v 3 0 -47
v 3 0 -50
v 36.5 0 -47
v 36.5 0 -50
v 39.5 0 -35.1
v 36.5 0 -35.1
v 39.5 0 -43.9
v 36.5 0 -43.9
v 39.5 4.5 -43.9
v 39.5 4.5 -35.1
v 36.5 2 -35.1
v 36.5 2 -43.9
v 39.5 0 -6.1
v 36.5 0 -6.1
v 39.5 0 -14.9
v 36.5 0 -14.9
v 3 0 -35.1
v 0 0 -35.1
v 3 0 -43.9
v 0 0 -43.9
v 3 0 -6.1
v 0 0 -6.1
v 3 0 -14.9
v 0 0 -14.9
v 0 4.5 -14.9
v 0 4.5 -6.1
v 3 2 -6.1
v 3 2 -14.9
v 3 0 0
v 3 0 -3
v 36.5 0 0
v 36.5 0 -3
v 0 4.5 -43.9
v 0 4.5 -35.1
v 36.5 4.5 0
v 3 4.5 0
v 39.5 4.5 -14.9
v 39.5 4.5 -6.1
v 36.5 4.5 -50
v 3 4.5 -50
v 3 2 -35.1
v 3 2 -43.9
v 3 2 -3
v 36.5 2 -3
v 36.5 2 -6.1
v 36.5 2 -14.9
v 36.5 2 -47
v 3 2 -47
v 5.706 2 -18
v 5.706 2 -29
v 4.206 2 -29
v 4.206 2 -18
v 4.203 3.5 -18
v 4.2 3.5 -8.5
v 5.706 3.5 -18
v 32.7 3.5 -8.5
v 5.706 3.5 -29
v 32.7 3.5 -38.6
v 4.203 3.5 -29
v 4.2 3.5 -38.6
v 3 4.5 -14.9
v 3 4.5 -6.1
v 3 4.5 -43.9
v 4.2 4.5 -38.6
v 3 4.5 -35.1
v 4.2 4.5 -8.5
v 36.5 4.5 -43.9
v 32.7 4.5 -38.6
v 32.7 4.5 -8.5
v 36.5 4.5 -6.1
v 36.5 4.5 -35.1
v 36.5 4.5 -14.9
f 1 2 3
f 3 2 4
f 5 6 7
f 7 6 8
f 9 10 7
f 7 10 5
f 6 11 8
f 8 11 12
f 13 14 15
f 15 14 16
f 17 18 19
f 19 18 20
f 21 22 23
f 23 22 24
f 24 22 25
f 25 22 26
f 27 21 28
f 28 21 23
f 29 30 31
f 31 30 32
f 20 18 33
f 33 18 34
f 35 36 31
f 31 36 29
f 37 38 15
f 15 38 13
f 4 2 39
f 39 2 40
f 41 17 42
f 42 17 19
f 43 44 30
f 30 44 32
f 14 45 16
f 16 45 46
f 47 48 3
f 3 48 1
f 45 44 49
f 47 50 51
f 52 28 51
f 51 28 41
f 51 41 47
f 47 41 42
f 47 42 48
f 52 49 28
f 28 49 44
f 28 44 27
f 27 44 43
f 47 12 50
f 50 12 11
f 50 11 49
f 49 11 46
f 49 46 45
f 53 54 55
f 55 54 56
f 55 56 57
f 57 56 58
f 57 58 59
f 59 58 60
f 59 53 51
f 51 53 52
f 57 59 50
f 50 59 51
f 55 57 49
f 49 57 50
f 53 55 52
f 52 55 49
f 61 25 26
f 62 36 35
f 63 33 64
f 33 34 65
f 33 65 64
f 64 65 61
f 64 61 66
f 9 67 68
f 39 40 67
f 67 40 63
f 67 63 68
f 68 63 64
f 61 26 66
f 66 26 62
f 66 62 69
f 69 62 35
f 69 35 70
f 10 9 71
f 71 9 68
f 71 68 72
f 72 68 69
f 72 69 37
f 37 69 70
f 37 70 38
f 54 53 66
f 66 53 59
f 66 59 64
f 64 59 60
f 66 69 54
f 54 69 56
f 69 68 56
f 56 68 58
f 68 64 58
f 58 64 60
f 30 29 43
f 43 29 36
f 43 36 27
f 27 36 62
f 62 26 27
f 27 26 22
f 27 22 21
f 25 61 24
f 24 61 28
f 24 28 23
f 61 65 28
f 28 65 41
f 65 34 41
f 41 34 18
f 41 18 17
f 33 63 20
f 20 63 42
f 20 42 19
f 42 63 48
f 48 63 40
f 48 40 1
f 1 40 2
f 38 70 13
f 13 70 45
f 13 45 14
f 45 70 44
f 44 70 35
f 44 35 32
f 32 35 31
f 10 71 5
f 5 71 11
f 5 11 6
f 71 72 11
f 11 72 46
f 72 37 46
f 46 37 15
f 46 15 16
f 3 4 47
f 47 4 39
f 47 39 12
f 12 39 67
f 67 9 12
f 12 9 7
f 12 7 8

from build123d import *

# Parameters (mm, degrees)
SKETCH3_W           = 39.5
SKETCH3_H           = 50
SKETCH3_W_2         = 33.5
SKETCH3_H_2         = 44
BOSS_EXTRUDE1_DEPTH = 2
SKETCH4_W           = 39.5
SKETCH4_H           = 50
BOSS_EXTRUDE2_DEPTH = 1.5
SKETCH5_W           = 1.5
SKETCH5_H           = 11
CUT_EXTRUDE1_DEPTH  = 3
SKETCH7_W           = 39.5
SKETCH7_H           = 50
SKETCH7_W_2         = 28.5
SKETCH7_H_2         = 30.1
BOSS_EXTRUDE3_DEPTH = 1
SKETCH8_W           = 3
SKETCH8_H           = 6.1
SKETCH8_H_2         = 20.2
CUT_EXTRUDE2_DEPTH  = 4.5


with BuildPart() as part:
    # Sketch3 → Boss-Extrude1 (new body)
    with BuildSketch(Plane(origin=(0, 0, 0), x_dir=(1, 0, 0), z_dir=(0, 1, 0))):
        with Locations((19.75, 25)):
            Rectangle(SKETCH3_W, SKETCH3_H)
        with Locations((19.75, 25)):
            Rectangle(SKETCH3_W_2, SKETCH3_H_2, mode=Mode.SUBTRACT)
    extrude(amount=BOSS_EXTRUDE1_DEPTH)

    # Sketch4 → Boss-Extrude2 (add)
    with BuildSketch(Plane(origin=(0, 2, 0), x_dir=(1, 0, 0), z_dir=(0, 1, 0))):
        with Locations((19.75, 25)):
            Rectangle(SKETCH4_W, SKETCH4_H)
    extrude(amount=BOSS_EXTRUDE2_DEPTH)

    # Sketch5 → Cut-Extrude1 (cut)
    with BuildSketch(Plane(origin=(0, 3.5, 0), x_dir=(1, 0, 0), z_dir=(0, 1, 0))):
        with Locations((4.956023136, 23.5)):
            Rectangle(SKETCH5_W, SKETCH5_H)
    extrude(amount=-CUT_EXTRUDE1_DEPTH, mode=Mode.SUBTRACT)

    # Sketch7 → Boss-Extrude3 (add)
    with BuildSketch(Plane(origin=(0, 3.5, 0), x_dir=(1, 0, 0), z_dir=(0, 1, 0))):
        with Locations((19.75, 25)):
            Rectangle(SKETCH7_W, SKETCH7_H)
        with Locations((18.45, 23.55)):
            Rectangle(SKETCH7_W_2, SKETCH7_H_2, mode=Mode.SUBTRACT)
    extrude(amount=BOSS_EXTRUDE3_DEPTH)

    # Sketch8 → Cut-Extrude2 (cut)
    with BuildSketch(Plane.XZ):
        with Locations((1.5, -3.05)):
            Rectangle(SKETCH8_W, SKETCH8_H)
        with Locations((1.5, -25)):
            Rectangle(SKETCH8_W, SKETCH8_H_2)
        with Locations((1.5, -46.95)):
            Rectangle(SKETCH8_W, SKETCH8_H)
        with Locations((38, -3.05)):
            Rectangle(SKETCH8_W, SKETCH8_H)
        with Locations((38, -25)):
            Rectangle(SKETCH8_W, SKETCH8_H_2)
        with Locations((38, -46.95)):
            Rectangle(SKETCH8_W, SKETCH8_H)
    extrude(amount=-CUT_EXTRUDE2_DEPTH, mode=Mode.SUBTRACT)


solid = part.part
